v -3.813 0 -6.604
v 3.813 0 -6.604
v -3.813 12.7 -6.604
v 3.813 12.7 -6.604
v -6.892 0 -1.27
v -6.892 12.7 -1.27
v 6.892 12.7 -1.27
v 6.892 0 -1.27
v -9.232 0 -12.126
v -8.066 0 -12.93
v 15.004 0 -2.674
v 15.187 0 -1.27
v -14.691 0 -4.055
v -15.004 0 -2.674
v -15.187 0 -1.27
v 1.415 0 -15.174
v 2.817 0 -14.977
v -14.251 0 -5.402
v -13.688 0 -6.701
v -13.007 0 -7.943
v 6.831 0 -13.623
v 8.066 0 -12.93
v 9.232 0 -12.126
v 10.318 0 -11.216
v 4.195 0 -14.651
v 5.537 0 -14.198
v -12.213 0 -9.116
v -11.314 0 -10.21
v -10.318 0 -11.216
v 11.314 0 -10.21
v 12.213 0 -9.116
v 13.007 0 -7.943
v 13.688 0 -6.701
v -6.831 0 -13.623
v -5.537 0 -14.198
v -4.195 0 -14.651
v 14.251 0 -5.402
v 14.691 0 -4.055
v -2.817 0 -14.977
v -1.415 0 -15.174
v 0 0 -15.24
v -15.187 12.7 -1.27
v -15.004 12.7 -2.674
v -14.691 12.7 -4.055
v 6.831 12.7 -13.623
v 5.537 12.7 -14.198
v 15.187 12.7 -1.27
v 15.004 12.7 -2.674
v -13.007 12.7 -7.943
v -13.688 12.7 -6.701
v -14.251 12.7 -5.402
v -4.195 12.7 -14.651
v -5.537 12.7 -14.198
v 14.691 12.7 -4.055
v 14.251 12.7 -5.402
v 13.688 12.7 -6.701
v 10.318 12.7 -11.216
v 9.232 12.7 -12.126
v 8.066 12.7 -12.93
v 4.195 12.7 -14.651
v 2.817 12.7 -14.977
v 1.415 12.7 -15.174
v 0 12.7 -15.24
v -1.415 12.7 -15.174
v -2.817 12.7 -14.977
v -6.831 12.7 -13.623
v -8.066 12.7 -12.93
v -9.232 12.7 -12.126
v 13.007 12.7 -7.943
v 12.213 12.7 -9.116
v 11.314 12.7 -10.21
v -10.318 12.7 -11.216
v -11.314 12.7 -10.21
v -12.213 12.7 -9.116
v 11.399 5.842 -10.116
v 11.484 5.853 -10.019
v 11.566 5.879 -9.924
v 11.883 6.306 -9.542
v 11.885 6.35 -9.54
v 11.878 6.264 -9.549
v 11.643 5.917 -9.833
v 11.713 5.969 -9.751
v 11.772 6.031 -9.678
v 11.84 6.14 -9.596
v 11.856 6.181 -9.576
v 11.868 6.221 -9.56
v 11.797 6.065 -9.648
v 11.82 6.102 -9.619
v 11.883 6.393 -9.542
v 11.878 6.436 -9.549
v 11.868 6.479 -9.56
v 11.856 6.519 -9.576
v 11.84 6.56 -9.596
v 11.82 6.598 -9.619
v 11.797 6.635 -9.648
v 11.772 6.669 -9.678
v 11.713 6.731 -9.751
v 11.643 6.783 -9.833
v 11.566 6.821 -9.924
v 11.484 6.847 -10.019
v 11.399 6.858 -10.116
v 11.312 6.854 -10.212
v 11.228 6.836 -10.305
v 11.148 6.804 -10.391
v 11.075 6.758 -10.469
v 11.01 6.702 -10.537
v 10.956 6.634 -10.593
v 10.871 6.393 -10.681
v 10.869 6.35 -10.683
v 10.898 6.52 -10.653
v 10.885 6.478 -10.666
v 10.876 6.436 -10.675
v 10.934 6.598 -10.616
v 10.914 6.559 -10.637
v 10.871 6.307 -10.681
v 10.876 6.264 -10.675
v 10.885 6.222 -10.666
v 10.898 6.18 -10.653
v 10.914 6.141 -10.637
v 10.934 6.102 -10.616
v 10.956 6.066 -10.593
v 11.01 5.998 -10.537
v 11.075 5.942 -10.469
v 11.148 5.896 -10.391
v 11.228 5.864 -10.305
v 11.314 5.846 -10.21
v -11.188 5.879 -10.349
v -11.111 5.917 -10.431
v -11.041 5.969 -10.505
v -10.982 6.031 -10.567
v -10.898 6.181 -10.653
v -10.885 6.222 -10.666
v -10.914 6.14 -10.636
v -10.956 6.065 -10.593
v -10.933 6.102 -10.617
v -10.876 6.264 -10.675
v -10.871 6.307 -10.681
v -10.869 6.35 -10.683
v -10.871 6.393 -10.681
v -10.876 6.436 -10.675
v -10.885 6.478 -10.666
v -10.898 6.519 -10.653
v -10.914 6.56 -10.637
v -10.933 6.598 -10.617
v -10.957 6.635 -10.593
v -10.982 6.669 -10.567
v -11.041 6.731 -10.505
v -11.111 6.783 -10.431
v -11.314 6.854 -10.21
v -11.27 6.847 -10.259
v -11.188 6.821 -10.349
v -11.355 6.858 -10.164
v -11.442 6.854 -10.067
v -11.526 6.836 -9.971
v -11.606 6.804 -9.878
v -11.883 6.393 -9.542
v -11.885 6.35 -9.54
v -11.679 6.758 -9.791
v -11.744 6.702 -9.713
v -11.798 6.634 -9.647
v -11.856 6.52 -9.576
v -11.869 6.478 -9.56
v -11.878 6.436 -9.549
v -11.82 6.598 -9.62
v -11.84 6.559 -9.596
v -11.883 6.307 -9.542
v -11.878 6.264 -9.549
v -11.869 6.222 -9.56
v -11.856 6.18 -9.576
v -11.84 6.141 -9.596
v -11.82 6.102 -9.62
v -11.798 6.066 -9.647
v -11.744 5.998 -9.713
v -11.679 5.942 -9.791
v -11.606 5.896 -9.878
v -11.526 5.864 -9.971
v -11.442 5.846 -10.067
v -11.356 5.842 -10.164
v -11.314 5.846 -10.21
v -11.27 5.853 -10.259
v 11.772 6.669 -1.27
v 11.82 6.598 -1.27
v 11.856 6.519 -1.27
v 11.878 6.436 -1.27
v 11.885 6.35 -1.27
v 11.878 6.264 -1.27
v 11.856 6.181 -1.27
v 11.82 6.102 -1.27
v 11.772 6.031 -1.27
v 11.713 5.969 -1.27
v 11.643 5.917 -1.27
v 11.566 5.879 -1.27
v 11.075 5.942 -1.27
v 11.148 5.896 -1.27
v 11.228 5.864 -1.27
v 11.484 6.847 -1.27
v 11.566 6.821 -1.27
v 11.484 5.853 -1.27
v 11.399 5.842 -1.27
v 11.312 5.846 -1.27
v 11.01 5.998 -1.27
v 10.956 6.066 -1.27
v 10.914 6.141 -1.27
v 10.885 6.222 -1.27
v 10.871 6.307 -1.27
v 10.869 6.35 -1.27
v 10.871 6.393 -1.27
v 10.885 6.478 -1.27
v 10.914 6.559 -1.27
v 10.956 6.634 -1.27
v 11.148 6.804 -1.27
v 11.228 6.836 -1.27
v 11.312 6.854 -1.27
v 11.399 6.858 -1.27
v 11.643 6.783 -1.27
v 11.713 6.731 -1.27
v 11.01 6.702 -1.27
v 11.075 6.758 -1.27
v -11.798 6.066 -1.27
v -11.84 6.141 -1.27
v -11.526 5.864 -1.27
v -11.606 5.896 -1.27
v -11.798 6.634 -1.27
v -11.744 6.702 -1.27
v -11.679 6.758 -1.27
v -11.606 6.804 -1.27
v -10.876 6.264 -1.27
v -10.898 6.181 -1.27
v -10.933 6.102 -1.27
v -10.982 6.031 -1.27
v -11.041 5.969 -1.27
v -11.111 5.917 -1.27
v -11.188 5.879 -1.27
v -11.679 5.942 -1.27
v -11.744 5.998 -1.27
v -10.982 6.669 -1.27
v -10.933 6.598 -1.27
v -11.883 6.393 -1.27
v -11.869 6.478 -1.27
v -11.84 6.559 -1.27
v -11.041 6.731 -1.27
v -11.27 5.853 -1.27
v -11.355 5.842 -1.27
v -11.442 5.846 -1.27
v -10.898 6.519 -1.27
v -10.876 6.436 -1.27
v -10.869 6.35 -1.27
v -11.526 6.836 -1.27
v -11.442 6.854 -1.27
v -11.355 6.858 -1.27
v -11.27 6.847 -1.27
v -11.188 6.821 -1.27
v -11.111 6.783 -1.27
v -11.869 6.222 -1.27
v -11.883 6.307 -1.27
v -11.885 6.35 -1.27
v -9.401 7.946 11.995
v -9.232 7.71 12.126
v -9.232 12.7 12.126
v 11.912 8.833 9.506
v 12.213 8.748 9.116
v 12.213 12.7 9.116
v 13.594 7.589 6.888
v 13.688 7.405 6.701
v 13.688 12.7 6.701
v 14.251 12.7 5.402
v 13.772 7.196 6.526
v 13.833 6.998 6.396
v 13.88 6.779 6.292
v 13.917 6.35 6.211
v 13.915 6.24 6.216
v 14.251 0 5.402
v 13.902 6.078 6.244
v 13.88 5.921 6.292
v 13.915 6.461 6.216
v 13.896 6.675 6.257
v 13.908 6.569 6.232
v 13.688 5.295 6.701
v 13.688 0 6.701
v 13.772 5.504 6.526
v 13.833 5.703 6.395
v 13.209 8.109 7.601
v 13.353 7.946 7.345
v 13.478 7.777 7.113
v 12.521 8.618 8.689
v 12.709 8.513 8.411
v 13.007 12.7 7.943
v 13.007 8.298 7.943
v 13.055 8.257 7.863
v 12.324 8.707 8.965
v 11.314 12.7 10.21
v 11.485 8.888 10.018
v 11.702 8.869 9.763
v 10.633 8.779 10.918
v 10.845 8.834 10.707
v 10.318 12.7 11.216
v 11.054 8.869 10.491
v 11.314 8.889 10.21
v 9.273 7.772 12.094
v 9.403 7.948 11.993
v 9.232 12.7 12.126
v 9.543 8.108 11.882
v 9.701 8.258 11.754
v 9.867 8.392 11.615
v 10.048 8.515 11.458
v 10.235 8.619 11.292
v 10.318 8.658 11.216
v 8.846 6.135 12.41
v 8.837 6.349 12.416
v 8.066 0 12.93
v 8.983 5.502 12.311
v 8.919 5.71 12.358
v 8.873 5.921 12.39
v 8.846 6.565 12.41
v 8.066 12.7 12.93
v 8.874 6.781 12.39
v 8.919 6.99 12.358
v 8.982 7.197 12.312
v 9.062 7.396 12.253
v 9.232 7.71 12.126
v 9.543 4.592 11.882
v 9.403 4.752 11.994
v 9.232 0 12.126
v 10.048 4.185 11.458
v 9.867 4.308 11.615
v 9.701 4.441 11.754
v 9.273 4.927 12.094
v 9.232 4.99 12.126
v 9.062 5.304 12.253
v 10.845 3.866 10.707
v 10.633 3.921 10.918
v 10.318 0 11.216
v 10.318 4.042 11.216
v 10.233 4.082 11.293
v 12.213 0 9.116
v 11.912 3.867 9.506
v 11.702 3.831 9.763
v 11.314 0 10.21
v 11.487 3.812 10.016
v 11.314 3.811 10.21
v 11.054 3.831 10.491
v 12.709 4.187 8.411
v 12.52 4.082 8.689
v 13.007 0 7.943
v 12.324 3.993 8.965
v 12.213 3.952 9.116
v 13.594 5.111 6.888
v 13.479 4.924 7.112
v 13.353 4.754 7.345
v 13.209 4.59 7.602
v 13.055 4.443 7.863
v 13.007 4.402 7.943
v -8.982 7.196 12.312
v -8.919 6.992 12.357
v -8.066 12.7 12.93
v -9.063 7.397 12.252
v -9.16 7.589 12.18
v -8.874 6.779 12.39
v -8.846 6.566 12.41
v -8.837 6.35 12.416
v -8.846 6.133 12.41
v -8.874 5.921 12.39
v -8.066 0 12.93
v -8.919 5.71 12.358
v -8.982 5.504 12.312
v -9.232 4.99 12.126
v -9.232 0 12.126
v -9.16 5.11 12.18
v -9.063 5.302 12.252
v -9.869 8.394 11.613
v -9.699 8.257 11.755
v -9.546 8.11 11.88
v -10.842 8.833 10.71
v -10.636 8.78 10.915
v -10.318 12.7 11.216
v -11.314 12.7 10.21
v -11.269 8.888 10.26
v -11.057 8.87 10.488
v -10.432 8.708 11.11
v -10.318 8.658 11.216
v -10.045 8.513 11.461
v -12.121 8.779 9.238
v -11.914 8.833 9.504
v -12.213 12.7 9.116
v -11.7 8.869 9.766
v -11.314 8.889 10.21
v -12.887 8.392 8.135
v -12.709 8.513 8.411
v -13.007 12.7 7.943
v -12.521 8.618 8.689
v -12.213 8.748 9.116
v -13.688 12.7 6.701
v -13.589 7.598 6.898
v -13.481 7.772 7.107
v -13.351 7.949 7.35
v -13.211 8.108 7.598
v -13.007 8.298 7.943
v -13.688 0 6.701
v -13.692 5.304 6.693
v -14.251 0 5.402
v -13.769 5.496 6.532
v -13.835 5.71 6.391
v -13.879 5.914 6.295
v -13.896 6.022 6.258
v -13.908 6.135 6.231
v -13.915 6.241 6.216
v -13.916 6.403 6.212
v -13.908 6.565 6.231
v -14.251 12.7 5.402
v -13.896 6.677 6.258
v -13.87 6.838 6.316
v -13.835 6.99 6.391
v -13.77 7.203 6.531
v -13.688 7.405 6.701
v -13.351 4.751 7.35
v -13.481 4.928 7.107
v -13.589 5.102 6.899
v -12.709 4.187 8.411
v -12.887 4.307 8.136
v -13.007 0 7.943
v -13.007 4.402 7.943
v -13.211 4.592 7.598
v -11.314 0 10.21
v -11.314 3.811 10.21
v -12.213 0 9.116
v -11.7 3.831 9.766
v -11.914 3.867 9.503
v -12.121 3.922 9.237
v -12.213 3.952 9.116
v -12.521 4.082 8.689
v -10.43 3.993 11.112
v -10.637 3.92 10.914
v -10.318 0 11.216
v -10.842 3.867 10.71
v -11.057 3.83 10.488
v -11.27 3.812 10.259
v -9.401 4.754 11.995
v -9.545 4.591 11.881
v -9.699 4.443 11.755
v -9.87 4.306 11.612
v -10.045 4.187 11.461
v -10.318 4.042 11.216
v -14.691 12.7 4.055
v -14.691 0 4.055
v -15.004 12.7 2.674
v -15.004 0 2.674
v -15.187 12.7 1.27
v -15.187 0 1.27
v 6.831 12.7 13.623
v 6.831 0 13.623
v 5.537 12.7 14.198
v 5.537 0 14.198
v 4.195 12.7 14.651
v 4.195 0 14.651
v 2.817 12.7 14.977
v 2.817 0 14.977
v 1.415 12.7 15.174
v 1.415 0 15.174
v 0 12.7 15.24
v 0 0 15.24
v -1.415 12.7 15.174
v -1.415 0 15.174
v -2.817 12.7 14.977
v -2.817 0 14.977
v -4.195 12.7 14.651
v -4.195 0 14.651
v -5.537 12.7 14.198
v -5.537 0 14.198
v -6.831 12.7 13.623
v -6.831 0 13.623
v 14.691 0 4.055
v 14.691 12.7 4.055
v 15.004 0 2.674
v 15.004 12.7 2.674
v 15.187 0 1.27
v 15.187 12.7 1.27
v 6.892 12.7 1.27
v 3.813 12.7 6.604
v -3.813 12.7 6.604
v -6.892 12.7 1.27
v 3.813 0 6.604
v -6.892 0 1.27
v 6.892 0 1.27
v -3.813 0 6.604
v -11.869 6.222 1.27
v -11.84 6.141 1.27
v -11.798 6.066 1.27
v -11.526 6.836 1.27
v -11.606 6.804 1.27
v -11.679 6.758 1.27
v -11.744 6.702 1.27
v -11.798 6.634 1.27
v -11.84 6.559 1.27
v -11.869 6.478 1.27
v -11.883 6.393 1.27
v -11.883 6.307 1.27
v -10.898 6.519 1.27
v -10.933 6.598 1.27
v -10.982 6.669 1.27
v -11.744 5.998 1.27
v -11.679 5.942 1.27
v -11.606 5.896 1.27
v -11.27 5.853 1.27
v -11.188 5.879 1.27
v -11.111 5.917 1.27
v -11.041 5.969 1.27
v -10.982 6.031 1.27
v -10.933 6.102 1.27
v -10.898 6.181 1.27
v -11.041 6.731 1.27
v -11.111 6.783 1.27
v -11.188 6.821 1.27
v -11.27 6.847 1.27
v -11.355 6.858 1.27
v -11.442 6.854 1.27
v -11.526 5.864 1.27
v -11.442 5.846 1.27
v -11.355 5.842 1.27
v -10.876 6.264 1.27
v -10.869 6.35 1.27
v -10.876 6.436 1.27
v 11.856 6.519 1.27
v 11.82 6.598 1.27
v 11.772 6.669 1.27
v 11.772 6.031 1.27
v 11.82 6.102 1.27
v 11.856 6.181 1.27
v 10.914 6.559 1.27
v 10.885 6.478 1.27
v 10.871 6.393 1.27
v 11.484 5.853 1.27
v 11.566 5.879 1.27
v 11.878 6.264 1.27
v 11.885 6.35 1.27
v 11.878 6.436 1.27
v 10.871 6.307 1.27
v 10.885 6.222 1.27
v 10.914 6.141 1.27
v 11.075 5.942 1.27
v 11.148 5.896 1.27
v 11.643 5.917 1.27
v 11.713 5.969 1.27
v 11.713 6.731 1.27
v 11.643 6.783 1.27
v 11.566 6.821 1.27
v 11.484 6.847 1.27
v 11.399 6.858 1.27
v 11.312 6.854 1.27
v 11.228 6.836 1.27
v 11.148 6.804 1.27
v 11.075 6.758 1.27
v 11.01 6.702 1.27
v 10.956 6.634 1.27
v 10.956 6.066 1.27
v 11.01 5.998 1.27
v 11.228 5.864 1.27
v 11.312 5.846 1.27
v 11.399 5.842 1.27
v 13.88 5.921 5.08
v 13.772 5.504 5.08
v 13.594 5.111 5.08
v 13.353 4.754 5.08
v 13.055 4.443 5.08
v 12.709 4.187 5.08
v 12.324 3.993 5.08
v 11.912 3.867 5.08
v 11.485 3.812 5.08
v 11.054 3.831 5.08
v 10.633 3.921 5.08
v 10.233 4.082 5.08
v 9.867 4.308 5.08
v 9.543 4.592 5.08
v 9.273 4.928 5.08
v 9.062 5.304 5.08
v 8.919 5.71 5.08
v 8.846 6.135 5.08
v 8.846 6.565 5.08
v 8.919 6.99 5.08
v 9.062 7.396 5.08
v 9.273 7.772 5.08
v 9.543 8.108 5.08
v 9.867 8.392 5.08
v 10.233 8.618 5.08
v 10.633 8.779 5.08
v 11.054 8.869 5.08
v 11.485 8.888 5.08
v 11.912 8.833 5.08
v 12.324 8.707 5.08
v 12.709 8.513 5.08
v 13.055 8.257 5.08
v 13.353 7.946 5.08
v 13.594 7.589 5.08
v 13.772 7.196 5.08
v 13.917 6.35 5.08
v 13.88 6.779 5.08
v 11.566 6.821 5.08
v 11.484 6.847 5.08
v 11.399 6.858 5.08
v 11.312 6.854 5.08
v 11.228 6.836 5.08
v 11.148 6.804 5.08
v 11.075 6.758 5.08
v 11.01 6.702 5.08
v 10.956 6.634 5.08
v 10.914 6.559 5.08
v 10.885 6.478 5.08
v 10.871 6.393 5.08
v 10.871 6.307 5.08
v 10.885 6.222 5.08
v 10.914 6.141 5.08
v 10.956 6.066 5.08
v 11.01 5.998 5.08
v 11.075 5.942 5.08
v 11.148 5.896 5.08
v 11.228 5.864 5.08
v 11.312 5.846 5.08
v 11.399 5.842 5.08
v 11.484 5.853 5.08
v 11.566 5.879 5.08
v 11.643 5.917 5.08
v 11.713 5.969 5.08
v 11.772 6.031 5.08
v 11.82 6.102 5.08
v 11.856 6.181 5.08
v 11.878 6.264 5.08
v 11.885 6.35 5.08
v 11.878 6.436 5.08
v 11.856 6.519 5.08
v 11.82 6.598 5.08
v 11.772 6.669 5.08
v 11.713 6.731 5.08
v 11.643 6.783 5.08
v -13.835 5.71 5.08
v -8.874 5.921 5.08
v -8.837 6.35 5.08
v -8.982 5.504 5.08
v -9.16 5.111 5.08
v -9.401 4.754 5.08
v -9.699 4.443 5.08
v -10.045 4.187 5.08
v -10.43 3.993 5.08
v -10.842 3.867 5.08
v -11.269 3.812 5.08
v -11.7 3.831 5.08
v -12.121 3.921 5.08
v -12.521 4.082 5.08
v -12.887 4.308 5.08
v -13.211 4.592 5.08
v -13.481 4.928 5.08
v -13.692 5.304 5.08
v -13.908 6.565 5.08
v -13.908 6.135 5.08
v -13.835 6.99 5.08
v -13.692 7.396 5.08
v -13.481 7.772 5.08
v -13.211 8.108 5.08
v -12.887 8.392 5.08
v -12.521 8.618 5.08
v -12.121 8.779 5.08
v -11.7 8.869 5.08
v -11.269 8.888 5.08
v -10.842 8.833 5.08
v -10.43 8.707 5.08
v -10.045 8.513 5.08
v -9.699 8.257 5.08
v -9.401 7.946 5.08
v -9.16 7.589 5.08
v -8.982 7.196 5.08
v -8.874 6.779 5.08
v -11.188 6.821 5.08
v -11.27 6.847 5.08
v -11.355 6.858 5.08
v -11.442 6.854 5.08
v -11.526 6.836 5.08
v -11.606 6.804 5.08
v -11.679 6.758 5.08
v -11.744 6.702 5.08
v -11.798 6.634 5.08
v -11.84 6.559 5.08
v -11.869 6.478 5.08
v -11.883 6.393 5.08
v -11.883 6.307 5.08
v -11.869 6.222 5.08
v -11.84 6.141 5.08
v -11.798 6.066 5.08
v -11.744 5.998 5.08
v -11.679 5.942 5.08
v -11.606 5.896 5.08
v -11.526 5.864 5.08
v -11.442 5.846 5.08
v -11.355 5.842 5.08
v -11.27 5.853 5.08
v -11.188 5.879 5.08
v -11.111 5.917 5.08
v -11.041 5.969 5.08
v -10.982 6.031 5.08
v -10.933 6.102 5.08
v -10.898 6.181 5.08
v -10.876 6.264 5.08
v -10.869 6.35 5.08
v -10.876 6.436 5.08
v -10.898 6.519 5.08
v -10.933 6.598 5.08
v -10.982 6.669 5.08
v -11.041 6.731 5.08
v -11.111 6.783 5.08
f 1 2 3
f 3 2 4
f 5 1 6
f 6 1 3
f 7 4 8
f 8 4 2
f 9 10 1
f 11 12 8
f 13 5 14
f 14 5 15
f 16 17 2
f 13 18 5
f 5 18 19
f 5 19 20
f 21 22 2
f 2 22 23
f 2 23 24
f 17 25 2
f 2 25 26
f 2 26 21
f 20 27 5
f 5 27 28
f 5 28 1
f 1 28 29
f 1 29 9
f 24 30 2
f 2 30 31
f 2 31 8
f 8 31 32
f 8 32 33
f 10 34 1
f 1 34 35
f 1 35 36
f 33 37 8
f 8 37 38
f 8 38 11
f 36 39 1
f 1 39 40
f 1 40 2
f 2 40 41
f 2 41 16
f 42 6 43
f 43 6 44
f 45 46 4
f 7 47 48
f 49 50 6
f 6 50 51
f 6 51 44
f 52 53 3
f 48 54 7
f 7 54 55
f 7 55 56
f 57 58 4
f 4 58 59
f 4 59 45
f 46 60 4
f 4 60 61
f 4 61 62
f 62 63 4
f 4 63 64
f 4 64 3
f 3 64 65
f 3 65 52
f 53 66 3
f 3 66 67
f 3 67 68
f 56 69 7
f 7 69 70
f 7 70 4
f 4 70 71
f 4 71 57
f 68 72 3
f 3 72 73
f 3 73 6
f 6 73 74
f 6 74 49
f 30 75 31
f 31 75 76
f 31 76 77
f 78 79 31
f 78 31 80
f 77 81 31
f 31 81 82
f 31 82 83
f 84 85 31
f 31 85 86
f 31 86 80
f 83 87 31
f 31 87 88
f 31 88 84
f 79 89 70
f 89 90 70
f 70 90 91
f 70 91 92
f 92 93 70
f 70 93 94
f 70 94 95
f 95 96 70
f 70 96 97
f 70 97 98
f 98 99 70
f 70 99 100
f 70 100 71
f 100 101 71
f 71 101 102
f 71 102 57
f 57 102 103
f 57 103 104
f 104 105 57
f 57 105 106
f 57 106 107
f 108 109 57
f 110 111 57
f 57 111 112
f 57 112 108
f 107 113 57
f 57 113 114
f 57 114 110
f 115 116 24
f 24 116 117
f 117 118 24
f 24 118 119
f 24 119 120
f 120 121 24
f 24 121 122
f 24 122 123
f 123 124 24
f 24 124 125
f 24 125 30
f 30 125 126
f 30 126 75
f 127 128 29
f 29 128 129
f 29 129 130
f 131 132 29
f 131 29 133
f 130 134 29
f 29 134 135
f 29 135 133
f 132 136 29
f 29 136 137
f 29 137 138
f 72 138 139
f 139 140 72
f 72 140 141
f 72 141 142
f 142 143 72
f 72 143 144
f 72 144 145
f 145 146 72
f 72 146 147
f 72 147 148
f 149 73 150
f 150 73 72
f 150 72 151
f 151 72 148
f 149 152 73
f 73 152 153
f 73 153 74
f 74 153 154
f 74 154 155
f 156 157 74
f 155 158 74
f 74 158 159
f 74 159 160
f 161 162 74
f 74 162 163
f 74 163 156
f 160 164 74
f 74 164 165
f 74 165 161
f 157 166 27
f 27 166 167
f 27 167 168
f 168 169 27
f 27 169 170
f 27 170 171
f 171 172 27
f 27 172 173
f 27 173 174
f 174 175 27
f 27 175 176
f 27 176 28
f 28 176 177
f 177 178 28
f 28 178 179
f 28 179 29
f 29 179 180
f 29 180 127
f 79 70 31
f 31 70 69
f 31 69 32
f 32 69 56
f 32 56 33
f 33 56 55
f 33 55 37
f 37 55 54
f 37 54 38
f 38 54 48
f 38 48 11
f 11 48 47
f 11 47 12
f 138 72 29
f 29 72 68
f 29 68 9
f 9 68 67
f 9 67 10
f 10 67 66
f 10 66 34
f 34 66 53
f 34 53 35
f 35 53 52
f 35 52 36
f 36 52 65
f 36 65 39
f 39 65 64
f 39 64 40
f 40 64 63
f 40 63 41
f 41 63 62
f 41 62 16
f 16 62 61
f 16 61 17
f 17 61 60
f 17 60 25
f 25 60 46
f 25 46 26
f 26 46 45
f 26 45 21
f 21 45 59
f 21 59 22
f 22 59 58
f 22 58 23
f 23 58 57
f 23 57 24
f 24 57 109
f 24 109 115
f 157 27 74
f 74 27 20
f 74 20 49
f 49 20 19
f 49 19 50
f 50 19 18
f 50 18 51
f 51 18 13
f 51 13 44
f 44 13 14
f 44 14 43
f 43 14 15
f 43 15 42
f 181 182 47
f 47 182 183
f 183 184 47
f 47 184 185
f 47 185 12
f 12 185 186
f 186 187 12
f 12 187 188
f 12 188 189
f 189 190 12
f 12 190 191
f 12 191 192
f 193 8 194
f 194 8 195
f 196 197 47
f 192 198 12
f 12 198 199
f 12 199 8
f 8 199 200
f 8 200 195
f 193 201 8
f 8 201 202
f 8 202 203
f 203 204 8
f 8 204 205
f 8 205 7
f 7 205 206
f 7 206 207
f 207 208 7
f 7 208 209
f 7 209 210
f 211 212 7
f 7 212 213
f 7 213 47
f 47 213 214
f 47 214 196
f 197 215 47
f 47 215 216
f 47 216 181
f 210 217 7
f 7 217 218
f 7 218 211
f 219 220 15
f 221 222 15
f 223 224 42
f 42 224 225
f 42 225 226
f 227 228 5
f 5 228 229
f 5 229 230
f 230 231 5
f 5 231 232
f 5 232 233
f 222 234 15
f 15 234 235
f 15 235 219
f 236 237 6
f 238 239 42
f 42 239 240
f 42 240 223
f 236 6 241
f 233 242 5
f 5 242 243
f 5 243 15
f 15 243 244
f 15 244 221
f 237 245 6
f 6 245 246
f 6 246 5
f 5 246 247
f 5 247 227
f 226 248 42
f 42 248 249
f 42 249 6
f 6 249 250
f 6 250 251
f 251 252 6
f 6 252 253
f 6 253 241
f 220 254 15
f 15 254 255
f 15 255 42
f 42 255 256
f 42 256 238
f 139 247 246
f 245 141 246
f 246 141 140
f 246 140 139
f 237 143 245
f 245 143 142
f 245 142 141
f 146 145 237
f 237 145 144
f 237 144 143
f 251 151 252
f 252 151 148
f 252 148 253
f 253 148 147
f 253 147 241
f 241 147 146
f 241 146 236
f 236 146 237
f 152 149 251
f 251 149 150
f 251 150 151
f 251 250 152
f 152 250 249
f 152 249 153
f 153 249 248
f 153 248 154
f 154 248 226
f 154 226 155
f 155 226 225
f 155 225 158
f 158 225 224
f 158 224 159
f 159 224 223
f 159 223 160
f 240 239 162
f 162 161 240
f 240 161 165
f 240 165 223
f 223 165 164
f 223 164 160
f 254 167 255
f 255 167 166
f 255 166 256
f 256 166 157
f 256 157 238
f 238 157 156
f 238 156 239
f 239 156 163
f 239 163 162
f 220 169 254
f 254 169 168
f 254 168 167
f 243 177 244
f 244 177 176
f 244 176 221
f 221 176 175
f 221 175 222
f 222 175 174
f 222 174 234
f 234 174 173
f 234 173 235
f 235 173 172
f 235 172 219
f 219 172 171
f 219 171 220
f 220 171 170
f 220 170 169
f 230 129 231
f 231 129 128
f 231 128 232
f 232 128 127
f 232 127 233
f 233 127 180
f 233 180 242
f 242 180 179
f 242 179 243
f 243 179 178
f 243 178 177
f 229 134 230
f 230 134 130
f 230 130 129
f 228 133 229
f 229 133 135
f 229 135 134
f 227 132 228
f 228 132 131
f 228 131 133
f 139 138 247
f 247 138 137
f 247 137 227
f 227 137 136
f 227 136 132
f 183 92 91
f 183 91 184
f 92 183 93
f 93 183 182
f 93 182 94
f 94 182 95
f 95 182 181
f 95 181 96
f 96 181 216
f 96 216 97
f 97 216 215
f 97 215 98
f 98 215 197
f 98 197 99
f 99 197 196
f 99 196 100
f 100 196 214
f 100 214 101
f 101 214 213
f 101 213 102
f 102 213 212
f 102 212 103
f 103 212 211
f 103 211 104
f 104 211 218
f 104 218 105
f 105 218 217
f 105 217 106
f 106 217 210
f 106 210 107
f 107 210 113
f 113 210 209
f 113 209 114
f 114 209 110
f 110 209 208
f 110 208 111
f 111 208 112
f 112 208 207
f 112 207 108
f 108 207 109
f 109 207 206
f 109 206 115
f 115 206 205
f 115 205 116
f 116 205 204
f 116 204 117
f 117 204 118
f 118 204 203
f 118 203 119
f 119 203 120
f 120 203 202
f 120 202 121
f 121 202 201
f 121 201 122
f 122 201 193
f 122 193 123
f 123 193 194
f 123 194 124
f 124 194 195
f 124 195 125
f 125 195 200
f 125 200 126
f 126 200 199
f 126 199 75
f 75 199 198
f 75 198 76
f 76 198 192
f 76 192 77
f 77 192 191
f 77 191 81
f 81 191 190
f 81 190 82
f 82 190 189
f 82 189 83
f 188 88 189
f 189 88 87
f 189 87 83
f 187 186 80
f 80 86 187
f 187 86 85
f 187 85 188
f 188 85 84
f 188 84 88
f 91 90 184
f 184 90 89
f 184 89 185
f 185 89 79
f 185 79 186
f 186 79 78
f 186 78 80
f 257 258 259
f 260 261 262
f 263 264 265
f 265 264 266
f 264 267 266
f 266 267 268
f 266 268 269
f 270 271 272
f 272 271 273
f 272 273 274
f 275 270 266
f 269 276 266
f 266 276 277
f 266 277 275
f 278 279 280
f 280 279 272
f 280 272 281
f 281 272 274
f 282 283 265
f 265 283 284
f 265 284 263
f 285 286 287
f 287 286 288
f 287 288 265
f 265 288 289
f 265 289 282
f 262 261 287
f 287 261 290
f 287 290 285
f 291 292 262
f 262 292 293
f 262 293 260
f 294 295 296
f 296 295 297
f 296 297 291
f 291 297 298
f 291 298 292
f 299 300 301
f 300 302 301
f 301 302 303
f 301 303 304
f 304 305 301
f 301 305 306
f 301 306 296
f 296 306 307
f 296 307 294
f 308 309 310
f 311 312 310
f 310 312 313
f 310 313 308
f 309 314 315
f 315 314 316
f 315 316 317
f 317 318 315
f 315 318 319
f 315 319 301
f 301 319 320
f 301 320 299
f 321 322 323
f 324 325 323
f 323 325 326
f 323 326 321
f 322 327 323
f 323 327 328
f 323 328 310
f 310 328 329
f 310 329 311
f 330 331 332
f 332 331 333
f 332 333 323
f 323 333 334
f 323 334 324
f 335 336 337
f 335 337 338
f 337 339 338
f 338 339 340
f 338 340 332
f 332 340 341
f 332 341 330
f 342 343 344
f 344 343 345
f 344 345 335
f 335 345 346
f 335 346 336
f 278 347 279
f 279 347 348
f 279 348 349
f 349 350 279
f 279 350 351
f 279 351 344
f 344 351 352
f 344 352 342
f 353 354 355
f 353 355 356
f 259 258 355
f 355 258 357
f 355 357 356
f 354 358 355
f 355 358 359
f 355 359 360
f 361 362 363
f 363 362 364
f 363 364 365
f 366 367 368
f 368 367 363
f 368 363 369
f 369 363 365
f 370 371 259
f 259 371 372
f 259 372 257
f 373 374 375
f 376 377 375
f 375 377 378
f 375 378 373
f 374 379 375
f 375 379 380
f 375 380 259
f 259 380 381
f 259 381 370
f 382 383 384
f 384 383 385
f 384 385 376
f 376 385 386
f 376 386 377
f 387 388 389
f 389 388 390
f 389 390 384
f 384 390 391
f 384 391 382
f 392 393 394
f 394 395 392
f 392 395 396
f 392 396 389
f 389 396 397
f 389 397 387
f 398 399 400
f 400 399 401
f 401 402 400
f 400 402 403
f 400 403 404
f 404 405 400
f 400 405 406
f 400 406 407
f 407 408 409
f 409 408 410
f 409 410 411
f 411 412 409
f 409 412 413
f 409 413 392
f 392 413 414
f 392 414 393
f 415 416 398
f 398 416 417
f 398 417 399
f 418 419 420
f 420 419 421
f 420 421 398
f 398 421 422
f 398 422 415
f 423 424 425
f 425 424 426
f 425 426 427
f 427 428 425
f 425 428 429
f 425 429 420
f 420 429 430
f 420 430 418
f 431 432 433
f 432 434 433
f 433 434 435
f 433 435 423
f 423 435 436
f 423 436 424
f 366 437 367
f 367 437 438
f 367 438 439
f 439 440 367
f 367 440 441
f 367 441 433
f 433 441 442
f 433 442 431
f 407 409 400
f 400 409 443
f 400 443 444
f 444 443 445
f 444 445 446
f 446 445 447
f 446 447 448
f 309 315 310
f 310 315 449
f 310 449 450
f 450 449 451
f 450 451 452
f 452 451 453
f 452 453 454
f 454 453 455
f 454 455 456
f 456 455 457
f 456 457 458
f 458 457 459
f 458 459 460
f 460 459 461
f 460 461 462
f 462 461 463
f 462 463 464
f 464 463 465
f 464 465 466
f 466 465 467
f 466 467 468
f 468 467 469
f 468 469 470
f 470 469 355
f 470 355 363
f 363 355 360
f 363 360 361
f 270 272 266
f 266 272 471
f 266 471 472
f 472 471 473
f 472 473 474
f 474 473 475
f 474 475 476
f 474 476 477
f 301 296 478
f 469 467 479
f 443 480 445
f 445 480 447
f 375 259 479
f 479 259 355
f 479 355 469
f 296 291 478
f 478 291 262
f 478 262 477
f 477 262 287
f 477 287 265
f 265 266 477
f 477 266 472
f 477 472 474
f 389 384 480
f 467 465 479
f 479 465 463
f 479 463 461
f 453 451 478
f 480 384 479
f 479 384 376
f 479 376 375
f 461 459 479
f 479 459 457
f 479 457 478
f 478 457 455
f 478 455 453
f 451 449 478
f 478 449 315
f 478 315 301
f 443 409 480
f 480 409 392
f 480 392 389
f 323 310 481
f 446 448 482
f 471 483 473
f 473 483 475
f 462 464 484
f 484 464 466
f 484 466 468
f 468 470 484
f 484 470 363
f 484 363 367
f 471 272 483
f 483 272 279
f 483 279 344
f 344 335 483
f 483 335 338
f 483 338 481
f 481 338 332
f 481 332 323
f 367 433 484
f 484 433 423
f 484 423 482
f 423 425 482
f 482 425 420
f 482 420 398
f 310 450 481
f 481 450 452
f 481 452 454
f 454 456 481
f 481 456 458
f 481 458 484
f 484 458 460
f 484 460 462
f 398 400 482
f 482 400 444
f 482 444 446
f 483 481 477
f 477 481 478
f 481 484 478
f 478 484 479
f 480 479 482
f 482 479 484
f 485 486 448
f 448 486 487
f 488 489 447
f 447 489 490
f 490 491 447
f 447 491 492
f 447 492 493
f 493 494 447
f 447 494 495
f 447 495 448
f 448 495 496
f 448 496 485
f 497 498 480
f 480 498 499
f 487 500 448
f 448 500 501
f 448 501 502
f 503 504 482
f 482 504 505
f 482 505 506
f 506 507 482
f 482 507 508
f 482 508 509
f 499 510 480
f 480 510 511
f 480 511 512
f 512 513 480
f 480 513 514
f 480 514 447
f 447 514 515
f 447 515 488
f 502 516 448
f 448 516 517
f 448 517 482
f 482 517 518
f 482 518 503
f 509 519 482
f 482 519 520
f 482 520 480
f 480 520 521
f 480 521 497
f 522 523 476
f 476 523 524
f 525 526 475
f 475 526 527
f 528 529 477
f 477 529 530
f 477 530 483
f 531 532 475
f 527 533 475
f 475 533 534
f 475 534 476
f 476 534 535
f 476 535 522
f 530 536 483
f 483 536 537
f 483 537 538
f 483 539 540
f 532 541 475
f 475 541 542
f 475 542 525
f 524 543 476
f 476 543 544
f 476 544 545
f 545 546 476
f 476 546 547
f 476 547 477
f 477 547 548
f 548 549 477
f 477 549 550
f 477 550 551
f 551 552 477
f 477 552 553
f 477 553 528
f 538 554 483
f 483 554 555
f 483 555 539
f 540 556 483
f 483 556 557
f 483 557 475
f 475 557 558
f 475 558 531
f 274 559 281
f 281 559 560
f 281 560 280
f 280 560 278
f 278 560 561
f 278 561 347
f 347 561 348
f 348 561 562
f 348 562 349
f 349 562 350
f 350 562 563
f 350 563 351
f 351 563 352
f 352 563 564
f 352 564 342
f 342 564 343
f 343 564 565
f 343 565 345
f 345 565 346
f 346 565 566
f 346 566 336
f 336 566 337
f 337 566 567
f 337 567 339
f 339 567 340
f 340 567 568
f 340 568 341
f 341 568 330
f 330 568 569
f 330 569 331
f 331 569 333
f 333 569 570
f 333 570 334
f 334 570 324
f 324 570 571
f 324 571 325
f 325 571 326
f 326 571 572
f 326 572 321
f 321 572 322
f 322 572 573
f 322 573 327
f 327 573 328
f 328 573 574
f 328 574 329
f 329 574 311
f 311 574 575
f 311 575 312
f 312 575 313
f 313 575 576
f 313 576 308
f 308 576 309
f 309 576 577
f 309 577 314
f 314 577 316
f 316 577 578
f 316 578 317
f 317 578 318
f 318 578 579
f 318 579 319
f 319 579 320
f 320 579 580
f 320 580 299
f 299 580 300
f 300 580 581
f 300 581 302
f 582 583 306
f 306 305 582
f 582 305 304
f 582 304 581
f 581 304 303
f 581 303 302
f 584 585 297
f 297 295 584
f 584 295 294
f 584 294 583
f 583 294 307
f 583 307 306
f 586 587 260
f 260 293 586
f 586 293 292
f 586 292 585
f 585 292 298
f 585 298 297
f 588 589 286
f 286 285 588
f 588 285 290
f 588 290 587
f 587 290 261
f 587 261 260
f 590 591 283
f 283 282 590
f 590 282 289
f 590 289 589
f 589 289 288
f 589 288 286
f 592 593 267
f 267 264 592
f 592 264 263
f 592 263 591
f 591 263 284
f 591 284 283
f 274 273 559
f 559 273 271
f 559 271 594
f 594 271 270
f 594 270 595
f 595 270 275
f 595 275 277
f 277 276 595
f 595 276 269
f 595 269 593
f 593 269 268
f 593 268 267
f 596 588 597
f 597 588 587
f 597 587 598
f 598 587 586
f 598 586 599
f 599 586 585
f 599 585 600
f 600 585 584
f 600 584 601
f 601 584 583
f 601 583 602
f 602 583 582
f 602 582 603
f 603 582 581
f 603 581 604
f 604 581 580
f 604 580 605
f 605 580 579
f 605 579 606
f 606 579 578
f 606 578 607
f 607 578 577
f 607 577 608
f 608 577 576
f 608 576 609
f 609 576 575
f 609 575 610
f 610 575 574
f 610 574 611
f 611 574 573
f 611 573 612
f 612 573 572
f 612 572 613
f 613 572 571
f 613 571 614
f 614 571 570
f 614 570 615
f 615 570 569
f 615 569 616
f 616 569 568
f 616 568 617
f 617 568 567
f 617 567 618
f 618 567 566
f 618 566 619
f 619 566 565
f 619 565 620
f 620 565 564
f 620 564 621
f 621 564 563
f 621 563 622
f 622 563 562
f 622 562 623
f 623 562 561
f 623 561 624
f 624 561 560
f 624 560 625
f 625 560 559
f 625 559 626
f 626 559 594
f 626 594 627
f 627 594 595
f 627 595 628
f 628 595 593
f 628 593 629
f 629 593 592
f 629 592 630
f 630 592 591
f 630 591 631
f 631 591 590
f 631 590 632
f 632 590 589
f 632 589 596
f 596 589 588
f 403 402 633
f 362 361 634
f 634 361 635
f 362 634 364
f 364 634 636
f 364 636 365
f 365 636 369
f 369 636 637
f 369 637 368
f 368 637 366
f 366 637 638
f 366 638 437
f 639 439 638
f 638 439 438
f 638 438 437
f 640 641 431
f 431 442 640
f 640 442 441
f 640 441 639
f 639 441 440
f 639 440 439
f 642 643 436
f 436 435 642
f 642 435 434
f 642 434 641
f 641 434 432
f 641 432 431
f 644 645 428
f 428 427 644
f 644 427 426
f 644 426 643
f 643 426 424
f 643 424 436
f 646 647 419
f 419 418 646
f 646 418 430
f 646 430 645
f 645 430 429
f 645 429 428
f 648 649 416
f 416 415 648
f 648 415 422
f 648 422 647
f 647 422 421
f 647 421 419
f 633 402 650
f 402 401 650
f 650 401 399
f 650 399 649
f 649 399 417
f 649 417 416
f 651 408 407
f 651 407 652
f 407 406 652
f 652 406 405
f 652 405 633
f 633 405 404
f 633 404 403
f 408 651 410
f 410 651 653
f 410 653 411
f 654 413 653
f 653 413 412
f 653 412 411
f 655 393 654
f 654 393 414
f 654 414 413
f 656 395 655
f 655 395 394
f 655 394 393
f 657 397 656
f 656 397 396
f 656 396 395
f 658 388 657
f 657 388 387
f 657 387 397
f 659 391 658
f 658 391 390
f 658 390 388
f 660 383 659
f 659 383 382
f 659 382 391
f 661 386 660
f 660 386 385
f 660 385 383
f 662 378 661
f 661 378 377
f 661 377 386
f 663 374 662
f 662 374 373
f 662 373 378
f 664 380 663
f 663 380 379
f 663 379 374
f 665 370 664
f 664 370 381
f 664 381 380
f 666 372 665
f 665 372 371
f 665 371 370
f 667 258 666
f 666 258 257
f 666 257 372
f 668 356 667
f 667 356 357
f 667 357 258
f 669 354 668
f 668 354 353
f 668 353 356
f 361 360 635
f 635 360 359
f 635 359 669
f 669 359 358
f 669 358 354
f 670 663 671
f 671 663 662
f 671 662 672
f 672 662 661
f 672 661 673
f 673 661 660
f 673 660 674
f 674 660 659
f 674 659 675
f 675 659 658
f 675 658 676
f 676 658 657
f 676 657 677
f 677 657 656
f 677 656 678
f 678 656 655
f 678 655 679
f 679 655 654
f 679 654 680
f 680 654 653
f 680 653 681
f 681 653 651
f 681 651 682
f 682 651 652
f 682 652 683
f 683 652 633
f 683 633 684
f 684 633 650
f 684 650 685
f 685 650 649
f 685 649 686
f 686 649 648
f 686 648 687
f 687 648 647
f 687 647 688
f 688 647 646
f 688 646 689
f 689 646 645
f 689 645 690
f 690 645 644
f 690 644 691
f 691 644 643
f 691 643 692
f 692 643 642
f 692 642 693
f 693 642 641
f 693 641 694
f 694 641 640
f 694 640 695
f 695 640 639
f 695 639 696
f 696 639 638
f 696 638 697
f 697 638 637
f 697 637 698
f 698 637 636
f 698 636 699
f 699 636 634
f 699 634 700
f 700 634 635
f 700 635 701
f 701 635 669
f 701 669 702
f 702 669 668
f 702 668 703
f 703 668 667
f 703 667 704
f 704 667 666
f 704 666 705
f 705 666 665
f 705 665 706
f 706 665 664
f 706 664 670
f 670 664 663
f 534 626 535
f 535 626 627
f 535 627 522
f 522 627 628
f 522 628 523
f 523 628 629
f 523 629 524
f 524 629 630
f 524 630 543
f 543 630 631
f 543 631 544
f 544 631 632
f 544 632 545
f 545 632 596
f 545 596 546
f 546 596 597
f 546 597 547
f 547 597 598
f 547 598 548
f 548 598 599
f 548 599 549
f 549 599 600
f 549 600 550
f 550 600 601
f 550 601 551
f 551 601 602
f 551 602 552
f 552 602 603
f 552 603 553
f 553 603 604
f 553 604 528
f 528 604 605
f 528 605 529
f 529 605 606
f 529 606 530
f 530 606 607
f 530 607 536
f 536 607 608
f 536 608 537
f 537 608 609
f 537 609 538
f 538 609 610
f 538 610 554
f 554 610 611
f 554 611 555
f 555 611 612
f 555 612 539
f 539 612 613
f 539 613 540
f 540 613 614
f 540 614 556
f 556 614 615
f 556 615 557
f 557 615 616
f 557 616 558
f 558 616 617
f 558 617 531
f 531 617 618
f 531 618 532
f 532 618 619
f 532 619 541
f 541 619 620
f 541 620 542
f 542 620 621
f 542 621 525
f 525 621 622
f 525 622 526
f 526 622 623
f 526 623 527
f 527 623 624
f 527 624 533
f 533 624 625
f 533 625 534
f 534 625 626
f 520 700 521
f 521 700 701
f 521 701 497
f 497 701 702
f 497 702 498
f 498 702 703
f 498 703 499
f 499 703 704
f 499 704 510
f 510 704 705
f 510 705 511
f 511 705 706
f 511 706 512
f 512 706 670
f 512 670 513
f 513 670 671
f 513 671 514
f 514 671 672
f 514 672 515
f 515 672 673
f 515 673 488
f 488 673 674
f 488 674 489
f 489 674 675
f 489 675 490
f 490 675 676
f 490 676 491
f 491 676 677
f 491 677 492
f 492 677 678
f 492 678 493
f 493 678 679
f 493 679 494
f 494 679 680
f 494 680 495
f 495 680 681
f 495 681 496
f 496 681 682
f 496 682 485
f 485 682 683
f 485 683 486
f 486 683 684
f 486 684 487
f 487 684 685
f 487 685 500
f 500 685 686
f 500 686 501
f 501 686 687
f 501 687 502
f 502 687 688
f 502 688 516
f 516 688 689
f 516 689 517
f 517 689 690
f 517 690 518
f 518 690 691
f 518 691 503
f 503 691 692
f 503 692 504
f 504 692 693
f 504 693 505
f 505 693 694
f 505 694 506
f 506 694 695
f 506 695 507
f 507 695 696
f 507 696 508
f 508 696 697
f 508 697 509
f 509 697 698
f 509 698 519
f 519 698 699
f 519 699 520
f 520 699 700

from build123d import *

# Parameters (mm, degrees)
SKETCH1_R           = 15.24
BOSS_EXTRUDE1_DEPTH = 12.7
CUT_EXTRUDE1_DEPTH  = 12.7
CUT_EXTRUDE2_DEPTH  = 12.7
SKETCH4_R           = 2.54
CUT_EXTRUDE3_DEPTH  = 10.16
SKETCH5_R           = 0.508
CUT_EXTRUDE4_DEPTH  = 29.369651136


with BuildPart() as part:
    # Sketch1 → Boss-Extrude1 (new body)
    with BuildSketch(Plane(origin=(0, 0, 0), x_dir=(1, 0, 0), z_dir=(0, 1, 0))):
        with Locations(Location((0, 0, 0), (0, 0, 270))):
            Circle(SKETCH1_R)
    extrude(amount=BOSS_EXTRUDE1_DEPTH)

    # Sketch2 → Cut-Extrude1 (cut)
    with BuildSketch(Plane(origin=(0, 12.7, 0), x_dir=(1, 0, 0), z_dir=(0, 1, 0))):
        Polygon((7.625642355, 0), (3.812821178, 6.604), (-3.812821178, 6.604), (-7.625642355, 0), (-3.812821178, -6.604), (3.812821178, -6.604), align=None)
    extrude(amount=-CUT_EXTRUDE1_DEPTH, mode=Mode.SUBTRACT)

    # Sketch3 → Cut-Extrude2 (cut)
    with BuildSketch(Plane(origin=(0, 12.7, 0), x_dir=(1, 0, 0), z_dir=(0, 1, 0))):
        Polygon((-15.24, 0), (-15.24, -1.27), (15.24, -1.27), (15.24, 0), (15.24, 1.27), (-15.24, 1.27), align=None)
    extrude(amount=-CUT_EXTRUDE2_DEPTH, mode=Mode.SUBTRACT)


with BuildPart() as cut_extrude2_piece_1:
    # of the separate pieces the step leaves, piece 1, a body of its own (cut_extrude2_pieces)
    add(part.part.solids().sort_by_distance((-15.186991144, 0, 1.27))[0])

    # Sketch4 → Cut-Extrude3 (cut)
    with BuildSketch(Plane.XY.offset(15.24)):
        with Locations((-11.376991144, 6.35)):
            Circle(SKETCH4_R)
        with Locations((11.376991144, 6.35)):
            Circle(SKETCH4_R)
    extrude(amount=-CUT_EXTRUDE3_DEPTH, mode=Mode.SUBTRACT)


with BuildPart() as cut_extrude2_piece_2:
    # of the separate pieces the step leaves, piece 2, a body of its own (cut_extrude2_pieces)
    add(part.part.solids().sort_by_distance((15.186991144, 0, -1.27))[0])


with BuildPart() as cut_extrude4_tool:
    # Sketch5 → Cut-Extrude4 (new, through all)
    with BuildSketch(Plane.XY.offset(5.08)):
        with Locations((-11.376991144, 6.35)):
            Circle(SKETCH5_R)
        with Locations((11.376991144, 6.35)):
            Circle(SKETCH5_R)
    extrude(amount=-CUT_EXTRUDE4_DEPTH)


with BuildPart() as cut_extrude2_piece_1_1:
    add(cut_extrude2_piece_1.part)

    # Cut-Extrude4: cut by cut_extrude4_tool
    add(cut_extrude4_tool.part, mode=Mode.SUBTRACT)


with BuildPart() as cut_extrude2_piece_2_1:
    add(cut_extrude2_piece_2.part)

    # Cut-Extrude4: cut by cut_extrude4_tool
    add(cut_extrude4_tool.part, mode=Mode.SUBTRACT)


solid = Compound([cut_extrude2_piece_1_1.part, cut_extrude2_piece_2_1.part])
